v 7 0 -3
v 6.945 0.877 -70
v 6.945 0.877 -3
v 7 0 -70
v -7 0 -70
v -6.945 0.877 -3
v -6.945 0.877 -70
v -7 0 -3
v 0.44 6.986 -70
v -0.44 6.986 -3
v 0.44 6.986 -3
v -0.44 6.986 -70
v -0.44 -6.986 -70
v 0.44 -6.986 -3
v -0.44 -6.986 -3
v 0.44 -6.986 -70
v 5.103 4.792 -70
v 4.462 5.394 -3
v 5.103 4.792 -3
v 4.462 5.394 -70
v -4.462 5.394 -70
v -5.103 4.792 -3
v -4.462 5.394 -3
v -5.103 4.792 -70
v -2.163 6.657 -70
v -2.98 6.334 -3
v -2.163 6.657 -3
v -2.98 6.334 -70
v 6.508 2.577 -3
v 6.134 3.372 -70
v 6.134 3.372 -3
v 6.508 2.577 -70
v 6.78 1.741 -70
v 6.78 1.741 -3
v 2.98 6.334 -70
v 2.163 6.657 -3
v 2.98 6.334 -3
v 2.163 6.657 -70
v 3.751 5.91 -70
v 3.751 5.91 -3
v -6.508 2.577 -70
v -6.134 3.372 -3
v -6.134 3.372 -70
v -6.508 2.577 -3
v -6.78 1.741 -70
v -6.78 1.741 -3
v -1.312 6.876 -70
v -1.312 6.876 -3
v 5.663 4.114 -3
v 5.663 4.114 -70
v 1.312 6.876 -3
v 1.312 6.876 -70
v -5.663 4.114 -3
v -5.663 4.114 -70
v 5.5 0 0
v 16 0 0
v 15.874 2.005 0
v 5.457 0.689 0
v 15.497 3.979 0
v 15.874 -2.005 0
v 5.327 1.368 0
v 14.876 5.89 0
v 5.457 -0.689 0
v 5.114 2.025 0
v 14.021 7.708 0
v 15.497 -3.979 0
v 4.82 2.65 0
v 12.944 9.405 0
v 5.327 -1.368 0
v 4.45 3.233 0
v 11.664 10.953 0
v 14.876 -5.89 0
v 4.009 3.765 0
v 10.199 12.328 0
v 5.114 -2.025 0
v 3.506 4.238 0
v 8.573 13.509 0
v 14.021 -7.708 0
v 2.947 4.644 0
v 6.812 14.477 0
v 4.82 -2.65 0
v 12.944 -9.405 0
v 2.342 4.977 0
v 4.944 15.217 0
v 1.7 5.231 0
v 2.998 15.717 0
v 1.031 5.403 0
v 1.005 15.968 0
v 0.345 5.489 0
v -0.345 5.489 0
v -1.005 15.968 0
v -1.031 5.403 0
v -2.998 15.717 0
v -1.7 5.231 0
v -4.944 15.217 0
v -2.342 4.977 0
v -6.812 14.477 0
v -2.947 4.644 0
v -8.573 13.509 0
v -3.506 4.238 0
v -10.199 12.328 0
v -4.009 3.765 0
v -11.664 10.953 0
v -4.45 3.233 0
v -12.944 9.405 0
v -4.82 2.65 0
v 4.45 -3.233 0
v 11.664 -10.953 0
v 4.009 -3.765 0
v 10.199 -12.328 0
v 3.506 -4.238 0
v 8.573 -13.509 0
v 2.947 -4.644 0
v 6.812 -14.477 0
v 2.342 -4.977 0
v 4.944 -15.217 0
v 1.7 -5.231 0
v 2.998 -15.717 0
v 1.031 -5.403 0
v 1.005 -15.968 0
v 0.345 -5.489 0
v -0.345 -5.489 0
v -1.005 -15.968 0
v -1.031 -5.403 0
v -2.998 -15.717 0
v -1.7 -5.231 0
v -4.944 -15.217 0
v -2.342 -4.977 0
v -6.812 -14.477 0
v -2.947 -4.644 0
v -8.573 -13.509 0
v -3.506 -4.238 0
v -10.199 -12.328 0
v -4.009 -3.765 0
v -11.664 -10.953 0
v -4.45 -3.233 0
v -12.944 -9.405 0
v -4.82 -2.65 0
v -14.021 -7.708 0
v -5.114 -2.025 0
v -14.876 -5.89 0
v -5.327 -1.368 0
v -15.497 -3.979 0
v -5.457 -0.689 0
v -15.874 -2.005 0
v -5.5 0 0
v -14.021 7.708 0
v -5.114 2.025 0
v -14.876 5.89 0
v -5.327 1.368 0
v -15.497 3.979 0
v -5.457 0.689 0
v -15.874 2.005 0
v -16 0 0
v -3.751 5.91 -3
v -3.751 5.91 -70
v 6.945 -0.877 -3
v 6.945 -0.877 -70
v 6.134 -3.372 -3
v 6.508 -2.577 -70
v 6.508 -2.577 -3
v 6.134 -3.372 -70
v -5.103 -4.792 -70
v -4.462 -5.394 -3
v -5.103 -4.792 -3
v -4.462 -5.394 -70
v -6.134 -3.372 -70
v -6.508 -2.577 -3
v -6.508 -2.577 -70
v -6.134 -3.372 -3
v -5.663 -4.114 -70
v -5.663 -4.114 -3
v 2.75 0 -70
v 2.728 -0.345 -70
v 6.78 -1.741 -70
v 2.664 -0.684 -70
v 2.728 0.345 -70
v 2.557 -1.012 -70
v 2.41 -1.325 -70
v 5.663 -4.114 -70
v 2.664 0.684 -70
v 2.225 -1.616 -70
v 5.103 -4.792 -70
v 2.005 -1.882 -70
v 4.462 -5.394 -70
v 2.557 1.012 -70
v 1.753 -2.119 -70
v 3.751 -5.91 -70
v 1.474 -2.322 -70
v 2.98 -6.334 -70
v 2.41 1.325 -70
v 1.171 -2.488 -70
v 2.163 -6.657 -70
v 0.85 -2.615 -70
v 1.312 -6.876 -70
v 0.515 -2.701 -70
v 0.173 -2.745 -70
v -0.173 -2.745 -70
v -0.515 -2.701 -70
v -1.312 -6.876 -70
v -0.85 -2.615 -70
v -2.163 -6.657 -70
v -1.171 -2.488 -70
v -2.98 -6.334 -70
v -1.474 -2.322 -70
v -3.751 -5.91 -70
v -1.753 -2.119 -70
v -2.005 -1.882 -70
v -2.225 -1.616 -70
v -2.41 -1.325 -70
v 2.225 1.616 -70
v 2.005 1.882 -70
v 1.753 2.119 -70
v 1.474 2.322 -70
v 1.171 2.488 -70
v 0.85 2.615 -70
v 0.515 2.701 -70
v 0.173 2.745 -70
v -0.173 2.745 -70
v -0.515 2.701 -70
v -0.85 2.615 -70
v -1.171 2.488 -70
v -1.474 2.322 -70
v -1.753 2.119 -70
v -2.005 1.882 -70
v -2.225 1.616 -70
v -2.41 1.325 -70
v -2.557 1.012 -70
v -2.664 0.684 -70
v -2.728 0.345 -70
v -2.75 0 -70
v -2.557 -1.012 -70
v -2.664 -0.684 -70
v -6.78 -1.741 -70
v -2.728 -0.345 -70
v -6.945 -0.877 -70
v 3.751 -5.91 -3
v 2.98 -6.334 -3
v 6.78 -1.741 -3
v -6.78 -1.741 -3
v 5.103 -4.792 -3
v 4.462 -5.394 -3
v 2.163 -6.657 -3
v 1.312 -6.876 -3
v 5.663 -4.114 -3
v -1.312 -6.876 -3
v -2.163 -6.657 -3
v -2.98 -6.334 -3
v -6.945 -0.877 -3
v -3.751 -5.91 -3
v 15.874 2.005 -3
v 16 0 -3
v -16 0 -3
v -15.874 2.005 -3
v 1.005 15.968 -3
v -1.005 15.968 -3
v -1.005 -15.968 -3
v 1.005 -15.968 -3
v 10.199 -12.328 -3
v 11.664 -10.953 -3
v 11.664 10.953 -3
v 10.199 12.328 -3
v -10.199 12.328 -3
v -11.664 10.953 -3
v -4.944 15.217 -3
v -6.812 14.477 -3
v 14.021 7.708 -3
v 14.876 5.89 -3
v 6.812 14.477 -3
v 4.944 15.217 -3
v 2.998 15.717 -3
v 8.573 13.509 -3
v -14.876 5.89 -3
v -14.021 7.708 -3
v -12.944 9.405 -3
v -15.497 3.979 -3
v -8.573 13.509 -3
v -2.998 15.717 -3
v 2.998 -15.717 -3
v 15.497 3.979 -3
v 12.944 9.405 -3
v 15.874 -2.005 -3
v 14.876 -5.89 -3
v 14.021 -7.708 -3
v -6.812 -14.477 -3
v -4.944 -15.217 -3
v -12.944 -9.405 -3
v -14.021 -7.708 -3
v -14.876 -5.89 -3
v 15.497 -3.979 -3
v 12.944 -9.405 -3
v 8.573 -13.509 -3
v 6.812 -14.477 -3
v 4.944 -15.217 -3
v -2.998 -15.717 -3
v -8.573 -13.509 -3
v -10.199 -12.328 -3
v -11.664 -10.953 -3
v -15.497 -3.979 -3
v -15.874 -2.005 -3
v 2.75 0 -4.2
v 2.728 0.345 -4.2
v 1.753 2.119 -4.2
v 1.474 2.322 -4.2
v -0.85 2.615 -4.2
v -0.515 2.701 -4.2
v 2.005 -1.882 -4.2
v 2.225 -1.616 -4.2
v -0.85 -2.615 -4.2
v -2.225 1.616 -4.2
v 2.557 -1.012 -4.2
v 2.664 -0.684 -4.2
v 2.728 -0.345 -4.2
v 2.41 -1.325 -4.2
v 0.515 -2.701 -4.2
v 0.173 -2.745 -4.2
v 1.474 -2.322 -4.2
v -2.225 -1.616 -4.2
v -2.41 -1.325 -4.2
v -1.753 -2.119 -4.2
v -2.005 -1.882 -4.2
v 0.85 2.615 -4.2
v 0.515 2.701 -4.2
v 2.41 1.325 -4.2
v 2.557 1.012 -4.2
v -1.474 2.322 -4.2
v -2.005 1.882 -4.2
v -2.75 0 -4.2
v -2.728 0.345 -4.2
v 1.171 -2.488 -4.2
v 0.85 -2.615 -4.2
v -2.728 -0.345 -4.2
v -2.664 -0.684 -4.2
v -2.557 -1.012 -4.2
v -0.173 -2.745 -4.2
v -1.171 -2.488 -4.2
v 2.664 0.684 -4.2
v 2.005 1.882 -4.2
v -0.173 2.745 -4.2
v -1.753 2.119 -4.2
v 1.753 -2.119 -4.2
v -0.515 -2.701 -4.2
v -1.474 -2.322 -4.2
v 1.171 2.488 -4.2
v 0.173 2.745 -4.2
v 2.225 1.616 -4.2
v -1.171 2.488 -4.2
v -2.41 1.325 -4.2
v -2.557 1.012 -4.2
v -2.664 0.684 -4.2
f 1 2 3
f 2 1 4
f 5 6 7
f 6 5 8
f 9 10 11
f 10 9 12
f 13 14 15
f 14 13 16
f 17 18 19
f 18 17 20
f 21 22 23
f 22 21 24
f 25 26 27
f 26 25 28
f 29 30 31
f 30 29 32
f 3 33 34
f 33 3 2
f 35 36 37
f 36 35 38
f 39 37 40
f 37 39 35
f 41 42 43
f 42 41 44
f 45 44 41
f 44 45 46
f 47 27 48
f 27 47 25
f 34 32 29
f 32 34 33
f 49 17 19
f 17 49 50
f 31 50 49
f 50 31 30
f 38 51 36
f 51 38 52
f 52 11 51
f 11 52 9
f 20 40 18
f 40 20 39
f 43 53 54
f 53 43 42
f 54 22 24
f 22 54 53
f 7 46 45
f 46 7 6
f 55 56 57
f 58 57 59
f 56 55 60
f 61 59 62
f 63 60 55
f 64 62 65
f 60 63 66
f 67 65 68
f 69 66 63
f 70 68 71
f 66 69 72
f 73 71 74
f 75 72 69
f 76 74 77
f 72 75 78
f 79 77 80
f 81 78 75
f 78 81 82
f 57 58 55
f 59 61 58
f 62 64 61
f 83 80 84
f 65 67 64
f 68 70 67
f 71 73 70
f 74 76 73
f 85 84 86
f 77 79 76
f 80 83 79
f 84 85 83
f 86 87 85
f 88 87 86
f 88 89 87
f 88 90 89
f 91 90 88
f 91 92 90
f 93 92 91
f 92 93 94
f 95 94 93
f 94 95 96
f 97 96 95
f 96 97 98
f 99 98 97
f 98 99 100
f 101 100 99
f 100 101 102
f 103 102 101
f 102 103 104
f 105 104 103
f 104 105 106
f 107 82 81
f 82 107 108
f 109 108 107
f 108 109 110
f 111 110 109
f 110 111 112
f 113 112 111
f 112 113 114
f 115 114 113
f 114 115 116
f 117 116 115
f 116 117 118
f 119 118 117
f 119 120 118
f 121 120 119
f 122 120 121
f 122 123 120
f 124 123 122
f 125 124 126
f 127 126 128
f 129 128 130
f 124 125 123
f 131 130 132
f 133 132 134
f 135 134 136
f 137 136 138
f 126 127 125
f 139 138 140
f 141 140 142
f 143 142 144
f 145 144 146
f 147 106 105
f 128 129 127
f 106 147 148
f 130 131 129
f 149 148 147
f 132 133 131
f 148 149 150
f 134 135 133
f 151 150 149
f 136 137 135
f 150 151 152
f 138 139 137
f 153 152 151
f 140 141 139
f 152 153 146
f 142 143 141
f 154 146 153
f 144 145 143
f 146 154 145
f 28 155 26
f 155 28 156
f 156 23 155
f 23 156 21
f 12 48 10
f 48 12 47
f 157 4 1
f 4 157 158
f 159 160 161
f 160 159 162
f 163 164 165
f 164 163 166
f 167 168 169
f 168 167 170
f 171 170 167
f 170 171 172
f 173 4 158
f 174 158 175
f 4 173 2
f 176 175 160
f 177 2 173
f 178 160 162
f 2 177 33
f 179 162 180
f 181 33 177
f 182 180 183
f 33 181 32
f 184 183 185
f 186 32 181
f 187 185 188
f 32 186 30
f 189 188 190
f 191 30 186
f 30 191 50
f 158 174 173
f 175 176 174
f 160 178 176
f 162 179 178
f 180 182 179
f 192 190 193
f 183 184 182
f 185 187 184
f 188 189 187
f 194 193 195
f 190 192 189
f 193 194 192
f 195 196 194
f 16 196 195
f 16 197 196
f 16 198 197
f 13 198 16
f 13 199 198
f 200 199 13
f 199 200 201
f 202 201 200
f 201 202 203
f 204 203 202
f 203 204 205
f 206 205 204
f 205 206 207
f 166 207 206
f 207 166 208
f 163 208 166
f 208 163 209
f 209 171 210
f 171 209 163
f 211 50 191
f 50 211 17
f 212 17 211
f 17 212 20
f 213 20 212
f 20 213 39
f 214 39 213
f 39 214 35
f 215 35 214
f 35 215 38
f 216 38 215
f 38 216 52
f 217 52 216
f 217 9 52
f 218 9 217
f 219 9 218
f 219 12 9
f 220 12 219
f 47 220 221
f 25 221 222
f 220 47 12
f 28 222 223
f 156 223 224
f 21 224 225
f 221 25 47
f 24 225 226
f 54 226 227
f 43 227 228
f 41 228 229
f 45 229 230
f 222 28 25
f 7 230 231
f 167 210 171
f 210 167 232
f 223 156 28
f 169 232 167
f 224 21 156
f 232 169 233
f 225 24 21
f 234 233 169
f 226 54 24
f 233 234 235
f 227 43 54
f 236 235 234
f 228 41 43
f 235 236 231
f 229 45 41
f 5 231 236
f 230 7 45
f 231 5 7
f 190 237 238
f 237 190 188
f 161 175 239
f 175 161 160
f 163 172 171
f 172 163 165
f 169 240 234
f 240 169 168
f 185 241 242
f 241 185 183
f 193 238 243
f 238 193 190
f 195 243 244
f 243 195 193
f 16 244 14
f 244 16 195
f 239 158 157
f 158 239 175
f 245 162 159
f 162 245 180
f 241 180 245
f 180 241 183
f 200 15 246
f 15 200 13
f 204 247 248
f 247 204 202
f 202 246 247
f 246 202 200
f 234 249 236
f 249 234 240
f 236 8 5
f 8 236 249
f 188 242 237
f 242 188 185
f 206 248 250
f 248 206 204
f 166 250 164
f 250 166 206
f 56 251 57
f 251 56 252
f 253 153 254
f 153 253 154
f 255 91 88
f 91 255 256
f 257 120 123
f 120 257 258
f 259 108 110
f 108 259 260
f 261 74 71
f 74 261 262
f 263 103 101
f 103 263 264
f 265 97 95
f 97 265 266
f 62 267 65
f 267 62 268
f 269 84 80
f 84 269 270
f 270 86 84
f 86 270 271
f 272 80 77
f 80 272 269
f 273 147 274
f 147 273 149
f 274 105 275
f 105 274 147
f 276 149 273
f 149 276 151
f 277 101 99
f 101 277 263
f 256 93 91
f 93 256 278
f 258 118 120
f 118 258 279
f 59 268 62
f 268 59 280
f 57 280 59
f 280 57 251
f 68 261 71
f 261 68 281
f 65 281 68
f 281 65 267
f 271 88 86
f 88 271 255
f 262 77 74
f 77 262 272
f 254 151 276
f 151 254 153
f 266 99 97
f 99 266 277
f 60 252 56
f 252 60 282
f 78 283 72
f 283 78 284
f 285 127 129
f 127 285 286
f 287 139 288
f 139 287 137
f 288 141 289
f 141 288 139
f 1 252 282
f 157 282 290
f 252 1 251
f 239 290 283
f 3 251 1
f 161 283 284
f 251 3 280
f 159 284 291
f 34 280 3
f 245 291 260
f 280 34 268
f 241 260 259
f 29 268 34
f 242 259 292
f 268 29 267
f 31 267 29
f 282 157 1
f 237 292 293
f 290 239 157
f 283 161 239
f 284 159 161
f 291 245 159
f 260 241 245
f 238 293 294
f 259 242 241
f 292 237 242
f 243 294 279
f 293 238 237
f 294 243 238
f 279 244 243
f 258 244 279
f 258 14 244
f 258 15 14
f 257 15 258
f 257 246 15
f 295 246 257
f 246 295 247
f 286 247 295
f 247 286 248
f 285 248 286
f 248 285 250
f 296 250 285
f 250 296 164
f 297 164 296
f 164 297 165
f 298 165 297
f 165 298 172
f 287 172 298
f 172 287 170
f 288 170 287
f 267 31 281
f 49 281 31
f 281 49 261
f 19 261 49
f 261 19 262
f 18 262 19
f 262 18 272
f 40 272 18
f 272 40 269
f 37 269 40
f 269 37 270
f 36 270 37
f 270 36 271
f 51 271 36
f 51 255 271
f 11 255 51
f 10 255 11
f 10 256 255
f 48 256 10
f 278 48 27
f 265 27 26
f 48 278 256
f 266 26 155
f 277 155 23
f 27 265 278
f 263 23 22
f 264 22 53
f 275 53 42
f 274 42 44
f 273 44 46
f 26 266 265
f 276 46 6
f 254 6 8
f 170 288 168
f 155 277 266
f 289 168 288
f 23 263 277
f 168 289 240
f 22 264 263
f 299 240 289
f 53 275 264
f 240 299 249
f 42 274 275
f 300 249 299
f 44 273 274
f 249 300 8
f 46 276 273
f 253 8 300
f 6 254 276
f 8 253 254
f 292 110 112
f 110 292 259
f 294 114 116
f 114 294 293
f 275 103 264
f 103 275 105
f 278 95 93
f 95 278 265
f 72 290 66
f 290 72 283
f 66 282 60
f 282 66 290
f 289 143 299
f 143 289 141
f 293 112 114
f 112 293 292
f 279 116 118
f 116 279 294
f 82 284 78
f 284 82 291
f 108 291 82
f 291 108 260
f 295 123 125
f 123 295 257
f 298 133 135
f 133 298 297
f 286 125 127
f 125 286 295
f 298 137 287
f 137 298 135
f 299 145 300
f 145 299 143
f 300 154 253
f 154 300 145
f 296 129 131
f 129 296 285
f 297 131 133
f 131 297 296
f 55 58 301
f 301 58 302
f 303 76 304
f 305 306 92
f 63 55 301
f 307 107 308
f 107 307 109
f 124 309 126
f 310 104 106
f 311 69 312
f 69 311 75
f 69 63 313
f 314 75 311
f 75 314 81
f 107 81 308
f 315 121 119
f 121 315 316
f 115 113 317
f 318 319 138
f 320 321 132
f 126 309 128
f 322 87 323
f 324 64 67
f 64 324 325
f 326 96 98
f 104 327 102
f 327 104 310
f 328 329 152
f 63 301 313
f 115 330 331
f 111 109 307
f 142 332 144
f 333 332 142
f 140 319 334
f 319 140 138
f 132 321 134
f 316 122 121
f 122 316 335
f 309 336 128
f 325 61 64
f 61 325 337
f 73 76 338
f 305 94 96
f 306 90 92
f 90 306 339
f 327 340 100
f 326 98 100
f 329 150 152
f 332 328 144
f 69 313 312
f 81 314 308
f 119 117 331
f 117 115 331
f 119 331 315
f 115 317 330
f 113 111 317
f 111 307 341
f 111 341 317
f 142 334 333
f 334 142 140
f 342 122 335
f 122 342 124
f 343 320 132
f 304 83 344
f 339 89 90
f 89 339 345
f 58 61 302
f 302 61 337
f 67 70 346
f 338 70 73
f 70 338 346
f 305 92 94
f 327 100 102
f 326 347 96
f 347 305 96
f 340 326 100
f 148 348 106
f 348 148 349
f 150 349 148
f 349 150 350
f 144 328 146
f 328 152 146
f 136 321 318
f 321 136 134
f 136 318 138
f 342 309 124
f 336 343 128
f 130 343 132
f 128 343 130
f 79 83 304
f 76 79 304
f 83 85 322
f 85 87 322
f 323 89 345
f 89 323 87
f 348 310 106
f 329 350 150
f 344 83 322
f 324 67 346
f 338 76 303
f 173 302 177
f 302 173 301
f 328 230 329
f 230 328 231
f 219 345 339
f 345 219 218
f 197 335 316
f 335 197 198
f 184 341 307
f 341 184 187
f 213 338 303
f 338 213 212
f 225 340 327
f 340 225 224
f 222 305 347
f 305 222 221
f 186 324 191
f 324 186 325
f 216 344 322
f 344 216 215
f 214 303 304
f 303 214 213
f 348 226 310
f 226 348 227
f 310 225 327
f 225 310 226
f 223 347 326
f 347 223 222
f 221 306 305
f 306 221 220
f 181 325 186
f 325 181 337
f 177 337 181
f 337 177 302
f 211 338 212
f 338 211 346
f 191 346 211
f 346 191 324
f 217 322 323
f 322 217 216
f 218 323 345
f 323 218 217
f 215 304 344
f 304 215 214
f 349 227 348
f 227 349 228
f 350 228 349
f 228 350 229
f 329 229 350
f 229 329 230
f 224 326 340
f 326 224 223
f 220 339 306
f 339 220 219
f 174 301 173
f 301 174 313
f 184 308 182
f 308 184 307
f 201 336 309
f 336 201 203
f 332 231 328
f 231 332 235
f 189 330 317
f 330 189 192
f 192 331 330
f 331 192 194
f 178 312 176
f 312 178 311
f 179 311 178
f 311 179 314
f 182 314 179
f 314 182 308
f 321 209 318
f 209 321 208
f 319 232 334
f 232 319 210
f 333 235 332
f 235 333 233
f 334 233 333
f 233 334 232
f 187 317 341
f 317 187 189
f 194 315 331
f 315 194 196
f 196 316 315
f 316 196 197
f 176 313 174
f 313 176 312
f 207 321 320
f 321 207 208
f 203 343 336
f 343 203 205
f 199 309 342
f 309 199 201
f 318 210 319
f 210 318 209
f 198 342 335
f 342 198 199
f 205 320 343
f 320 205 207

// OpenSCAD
$fn = 50;


difference() {
	union() {
		translate(v = [0, 0, -70.0000000000]) {
			cylinder(h = 70, r = 7.0000000000);
		}
		translate(v = [0, 0, -3.0000000000]) {
			cylinder(h = 3, r = 16.0000000000);
		}
	}
	union() {
		translate(v = [0, 0, 0]) {
			rotate(a = [0, 0, 0]) {
				difference() {
					union() {
						#translate(v = [0, 0, -70.0000000000]) {
							cylinder(h = 70, r = 2.2500000000);
						}
						#translate(v = [0, 0, -4.2000000000]) {
							cylinder(h = 4.2000000000, r = 7.0000000000, r1 = 2.7500000000, r2 = 5.5000000000);
						}
						#translate(v = [0, 0, -70.0000000000]) {
							cylinder(h = 70, r = 2.7500000000);
						}
						#translate(v = [0, 0, -70.0000000000]) {
							cylinder(h = 70, r = 2.2500000000);
						}
					}
					union();
				}
			}
		}
	}
}
